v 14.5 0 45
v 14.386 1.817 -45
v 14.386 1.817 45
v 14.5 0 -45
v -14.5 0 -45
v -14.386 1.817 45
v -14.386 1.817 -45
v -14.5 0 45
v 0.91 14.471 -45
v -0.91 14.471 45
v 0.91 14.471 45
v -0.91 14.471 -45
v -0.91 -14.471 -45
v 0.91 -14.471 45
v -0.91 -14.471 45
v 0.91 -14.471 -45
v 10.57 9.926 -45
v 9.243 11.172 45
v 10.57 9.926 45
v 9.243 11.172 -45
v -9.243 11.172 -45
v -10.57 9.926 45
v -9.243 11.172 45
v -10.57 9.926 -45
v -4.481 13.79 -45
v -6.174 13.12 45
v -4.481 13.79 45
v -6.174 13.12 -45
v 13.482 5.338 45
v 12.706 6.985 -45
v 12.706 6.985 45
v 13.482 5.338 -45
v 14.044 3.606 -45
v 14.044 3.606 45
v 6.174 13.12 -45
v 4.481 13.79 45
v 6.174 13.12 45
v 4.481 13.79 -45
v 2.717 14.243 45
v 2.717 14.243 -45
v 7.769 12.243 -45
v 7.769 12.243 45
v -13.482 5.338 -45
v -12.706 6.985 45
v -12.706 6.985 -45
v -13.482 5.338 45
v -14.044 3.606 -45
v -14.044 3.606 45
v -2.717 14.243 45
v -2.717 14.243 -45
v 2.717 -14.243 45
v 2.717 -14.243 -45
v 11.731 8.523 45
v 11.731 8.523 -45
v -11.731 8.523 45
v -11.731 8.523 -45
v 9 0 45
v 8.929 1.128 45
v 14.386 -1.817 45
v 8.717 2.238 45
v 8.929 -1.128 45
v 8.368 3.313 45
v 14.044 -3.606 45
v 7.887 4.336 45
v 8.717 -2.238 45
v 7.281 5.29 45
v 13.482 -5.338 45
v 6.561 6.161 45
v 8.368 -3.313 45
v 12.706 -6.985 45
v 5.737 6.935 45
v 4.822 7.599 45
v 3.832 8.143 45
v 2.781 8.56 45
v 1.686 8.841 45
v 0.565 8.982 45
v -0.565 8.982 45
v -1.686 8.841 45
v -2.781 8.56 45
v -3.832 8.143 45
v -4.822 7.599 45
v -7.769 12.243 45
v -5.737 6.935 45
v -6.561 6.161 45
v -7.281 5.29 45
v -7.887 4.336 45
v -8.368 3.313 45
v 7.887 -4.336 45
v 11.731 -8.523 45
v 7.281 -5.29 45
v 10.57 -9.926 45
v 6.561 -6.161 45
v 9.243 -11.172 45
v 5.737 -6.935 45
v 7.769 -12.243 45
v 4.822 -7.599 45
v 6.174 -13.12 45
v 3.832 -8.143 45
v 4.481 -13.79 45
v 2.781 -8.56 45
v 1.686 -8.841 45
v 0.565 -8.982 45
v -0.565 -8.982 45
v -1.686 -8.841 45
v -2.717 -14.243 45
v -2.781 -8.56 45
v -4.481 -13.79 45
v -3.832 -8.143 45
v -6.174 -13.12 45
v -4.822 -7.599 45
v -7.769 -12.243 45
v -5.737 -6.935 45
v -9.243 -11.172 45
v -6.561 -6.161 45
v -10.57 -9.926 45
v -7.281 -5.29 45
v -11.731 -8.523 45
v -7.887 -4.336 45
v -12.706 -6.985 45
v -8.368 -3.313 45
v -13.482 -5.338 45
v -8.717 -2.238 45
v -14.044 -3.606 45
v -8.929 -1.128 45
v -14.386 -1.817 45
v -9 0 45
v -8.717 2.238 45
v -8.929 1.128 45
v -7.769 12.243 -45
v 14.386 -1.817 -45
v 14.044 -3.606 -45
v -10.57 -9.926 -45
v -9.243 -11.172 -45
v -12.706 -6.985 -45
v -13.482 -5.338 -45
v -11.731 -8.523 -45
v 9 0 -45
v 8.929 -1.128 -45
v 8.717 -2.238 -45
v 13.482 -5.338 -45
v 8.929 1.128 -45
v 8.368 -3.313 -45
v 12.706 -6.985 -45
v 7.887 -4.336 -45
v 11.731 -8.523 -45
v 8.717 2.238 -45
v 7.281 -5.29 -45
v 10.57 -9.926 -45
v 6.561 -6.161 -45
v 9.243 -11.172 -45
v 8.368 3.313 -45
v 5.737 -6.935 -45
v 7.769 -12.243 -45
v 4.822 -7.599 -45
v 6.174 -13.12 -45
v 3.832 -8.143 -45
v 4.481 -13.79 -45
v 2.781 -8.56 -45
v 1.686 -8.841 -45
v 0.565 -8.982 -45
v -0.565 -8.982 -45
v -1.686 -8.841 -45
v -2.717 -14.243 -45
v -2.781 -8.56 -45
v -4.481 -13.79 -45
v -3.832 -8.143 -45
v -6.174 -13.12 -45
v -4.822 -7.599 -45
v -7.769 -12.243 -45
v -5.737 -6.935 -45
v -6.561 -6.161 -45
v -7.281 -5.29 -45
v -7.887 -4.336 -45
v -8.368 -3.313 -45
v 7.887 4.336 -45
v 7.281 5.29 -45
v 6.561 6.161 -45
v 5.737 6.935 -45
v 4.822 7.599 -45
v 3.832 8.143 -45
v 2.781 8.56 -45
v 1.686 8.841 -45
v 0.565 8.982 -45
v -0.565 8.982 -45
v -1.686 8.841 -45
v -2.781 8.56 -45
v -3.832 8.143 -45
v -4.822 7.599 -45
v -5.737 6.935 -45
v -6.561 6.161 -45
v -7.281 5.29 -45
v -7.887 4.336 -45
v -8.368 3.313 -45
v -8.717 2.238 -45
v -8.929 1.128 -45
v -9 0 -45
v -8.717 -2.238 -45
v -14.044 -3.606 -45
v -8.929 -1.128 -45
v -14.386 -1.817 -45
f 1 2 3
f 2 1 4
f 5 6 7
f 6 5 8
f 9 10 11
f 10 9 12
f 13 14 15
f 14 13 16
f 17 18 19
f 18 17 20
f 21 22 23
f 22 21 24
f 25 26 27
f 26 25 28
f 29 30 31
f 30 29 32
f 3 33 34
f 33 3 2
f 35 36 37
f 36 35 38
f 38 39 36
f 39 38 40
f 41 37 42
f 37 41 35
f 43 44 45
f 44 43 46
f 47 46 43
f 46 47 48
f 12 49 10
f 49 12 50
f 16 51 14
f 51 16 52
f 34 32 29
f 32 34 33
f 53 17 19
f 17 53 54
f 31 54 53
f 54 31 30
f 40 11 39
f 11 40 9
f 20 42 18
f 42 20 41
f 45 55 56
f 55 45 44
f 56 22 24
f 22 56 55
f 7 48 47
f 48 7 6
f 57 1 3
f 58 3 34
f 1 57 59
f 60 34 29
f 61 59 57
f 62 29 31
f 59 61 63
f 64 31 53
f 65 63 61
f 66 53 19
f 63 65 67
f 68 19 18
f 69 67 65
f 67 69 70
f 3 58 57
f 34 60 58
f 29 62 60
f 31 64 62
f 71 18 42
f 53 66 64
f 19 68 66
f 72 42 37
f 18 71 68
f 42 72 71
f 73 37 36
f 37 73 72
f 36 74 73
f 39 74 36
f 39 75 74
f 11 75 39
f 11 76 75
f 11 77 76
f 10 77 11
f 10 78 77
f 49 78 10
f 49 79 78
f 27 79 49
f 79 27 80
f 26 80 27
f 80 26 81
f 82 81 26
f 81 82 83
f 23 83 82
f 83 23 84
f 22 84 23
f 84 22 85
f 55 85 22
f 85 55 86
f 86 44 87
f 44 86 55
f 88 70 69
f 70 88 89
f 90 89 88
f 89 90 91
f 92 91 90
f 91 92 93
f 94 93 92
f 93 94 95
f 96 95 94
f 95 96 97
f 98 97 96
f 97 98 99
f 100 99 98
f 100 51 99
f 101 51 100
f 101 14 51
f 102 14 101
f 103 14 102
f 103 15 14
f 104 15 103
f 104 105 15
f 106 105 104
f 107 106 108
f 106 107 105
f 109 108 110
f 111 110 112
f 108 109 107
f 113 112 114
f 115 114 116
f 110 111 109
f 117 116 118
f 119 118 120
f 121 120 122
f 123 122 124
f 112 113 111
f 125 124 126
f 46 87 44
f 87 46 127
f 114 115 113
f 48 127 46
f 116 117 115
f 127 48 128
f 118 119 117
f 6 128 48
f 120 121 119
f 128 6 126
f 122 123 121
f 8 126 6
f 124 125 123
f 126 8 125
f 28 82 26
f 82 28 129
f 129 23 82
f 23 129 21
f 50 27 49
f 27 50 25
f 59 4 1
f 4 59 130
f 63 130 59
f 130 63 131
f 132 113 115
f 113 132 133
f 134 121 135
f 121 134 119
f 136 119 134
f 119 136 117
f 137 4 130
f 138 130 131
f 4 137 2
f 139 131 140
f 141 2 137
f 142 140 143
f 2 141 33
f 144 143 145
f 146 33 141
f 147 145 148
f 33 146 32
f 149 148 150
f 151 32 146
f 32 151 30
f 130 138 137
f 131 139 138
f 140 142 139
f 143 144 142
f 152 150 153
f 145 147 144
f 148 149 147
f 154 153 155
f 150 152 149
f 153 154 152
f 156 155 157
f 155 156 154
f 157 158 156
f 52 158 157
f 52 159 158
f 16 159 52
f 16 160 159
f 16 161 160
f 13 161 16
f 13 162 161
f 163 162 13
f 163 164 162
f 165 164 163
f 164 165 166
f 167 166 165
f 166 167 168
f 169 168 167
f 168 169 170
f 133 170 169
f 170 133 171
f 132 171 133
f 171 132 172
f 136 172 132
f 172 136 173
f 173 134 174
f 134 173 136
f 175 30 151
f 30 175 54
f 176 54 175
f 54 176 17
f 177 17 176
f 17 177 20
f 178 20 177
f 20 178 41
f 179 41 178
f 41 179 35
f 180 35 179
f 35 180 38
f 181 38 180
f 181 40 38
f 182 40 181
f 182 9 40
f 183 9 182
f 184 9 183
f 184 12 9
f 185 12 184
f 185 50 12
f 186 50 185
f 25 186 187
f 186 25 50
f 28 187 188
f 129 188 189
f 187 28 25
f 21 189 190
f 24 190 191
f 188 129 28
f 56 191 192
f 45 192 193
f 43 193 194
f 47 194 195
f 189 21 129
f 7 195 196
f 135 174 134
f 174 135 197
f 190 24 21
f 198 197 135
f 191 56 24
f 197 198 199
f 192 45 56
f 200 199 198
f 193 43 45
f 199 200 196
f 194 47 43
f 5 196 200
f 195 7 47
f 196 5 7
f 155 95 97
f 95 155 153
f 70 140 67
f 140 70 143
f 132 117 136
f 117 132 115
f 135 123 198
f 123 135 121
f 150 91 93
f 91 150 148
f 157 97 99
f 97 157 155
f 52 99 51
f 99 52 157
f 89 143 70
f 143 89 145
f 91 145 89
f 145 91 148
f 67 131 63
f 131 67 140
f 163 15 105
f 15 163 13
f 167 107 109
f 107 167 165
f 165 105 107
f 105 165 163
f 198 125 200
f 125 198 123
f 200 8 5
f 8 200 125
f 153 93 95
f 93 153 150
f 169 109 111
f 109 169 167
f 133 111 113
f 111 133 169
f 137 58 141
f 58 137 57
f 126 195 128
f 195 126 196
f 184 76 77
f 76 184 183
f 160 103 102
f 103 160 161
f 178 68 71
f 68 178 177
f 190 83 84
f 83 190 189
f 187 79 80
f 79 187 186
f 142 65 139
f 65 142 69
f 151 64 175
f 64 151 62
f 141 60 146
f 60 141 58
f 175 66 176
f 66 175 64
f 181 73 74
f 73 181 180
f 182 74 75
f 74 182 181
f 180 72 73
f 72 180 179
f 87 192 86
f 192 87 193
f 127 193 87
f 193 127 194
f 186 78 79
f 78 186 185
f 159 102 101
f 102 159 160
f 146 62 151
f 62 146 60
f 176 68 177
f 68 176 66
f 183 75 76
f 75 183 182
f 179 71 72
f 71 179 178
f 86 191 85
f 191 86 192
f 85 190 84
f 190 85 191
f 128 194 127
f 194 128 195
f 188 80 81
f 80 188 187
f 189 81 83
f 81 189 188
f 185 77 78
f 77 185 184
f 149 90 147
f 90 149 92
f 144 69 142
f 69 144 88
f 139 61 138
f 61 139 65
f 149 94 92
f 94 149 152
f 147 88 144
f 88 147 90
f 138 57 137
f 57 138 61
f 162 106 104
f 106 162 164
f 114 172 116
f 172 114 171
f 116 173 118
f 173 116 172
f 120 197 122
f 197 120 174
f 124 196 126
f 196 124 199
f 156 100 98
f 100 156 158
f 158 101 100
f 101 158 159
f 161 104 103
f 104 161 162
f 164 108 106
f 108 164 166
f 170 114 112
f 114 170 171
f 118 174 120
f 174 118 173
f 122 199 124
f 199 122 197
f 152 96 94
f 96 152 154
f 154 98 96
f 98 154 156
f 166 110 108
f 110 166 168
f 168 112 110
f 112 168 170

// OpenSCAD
$fn = 50;


difference() {
	union() {
		translate(v = [0, 0, -45.0000000000]) {
			cylinder(h = 90, r = 14.5000000000);
		}
	}
	union() {
		translate(v = [0, 0, -100.0000000000]) {
			cylinder(h = 200, r = 9);
		}
	}
}
